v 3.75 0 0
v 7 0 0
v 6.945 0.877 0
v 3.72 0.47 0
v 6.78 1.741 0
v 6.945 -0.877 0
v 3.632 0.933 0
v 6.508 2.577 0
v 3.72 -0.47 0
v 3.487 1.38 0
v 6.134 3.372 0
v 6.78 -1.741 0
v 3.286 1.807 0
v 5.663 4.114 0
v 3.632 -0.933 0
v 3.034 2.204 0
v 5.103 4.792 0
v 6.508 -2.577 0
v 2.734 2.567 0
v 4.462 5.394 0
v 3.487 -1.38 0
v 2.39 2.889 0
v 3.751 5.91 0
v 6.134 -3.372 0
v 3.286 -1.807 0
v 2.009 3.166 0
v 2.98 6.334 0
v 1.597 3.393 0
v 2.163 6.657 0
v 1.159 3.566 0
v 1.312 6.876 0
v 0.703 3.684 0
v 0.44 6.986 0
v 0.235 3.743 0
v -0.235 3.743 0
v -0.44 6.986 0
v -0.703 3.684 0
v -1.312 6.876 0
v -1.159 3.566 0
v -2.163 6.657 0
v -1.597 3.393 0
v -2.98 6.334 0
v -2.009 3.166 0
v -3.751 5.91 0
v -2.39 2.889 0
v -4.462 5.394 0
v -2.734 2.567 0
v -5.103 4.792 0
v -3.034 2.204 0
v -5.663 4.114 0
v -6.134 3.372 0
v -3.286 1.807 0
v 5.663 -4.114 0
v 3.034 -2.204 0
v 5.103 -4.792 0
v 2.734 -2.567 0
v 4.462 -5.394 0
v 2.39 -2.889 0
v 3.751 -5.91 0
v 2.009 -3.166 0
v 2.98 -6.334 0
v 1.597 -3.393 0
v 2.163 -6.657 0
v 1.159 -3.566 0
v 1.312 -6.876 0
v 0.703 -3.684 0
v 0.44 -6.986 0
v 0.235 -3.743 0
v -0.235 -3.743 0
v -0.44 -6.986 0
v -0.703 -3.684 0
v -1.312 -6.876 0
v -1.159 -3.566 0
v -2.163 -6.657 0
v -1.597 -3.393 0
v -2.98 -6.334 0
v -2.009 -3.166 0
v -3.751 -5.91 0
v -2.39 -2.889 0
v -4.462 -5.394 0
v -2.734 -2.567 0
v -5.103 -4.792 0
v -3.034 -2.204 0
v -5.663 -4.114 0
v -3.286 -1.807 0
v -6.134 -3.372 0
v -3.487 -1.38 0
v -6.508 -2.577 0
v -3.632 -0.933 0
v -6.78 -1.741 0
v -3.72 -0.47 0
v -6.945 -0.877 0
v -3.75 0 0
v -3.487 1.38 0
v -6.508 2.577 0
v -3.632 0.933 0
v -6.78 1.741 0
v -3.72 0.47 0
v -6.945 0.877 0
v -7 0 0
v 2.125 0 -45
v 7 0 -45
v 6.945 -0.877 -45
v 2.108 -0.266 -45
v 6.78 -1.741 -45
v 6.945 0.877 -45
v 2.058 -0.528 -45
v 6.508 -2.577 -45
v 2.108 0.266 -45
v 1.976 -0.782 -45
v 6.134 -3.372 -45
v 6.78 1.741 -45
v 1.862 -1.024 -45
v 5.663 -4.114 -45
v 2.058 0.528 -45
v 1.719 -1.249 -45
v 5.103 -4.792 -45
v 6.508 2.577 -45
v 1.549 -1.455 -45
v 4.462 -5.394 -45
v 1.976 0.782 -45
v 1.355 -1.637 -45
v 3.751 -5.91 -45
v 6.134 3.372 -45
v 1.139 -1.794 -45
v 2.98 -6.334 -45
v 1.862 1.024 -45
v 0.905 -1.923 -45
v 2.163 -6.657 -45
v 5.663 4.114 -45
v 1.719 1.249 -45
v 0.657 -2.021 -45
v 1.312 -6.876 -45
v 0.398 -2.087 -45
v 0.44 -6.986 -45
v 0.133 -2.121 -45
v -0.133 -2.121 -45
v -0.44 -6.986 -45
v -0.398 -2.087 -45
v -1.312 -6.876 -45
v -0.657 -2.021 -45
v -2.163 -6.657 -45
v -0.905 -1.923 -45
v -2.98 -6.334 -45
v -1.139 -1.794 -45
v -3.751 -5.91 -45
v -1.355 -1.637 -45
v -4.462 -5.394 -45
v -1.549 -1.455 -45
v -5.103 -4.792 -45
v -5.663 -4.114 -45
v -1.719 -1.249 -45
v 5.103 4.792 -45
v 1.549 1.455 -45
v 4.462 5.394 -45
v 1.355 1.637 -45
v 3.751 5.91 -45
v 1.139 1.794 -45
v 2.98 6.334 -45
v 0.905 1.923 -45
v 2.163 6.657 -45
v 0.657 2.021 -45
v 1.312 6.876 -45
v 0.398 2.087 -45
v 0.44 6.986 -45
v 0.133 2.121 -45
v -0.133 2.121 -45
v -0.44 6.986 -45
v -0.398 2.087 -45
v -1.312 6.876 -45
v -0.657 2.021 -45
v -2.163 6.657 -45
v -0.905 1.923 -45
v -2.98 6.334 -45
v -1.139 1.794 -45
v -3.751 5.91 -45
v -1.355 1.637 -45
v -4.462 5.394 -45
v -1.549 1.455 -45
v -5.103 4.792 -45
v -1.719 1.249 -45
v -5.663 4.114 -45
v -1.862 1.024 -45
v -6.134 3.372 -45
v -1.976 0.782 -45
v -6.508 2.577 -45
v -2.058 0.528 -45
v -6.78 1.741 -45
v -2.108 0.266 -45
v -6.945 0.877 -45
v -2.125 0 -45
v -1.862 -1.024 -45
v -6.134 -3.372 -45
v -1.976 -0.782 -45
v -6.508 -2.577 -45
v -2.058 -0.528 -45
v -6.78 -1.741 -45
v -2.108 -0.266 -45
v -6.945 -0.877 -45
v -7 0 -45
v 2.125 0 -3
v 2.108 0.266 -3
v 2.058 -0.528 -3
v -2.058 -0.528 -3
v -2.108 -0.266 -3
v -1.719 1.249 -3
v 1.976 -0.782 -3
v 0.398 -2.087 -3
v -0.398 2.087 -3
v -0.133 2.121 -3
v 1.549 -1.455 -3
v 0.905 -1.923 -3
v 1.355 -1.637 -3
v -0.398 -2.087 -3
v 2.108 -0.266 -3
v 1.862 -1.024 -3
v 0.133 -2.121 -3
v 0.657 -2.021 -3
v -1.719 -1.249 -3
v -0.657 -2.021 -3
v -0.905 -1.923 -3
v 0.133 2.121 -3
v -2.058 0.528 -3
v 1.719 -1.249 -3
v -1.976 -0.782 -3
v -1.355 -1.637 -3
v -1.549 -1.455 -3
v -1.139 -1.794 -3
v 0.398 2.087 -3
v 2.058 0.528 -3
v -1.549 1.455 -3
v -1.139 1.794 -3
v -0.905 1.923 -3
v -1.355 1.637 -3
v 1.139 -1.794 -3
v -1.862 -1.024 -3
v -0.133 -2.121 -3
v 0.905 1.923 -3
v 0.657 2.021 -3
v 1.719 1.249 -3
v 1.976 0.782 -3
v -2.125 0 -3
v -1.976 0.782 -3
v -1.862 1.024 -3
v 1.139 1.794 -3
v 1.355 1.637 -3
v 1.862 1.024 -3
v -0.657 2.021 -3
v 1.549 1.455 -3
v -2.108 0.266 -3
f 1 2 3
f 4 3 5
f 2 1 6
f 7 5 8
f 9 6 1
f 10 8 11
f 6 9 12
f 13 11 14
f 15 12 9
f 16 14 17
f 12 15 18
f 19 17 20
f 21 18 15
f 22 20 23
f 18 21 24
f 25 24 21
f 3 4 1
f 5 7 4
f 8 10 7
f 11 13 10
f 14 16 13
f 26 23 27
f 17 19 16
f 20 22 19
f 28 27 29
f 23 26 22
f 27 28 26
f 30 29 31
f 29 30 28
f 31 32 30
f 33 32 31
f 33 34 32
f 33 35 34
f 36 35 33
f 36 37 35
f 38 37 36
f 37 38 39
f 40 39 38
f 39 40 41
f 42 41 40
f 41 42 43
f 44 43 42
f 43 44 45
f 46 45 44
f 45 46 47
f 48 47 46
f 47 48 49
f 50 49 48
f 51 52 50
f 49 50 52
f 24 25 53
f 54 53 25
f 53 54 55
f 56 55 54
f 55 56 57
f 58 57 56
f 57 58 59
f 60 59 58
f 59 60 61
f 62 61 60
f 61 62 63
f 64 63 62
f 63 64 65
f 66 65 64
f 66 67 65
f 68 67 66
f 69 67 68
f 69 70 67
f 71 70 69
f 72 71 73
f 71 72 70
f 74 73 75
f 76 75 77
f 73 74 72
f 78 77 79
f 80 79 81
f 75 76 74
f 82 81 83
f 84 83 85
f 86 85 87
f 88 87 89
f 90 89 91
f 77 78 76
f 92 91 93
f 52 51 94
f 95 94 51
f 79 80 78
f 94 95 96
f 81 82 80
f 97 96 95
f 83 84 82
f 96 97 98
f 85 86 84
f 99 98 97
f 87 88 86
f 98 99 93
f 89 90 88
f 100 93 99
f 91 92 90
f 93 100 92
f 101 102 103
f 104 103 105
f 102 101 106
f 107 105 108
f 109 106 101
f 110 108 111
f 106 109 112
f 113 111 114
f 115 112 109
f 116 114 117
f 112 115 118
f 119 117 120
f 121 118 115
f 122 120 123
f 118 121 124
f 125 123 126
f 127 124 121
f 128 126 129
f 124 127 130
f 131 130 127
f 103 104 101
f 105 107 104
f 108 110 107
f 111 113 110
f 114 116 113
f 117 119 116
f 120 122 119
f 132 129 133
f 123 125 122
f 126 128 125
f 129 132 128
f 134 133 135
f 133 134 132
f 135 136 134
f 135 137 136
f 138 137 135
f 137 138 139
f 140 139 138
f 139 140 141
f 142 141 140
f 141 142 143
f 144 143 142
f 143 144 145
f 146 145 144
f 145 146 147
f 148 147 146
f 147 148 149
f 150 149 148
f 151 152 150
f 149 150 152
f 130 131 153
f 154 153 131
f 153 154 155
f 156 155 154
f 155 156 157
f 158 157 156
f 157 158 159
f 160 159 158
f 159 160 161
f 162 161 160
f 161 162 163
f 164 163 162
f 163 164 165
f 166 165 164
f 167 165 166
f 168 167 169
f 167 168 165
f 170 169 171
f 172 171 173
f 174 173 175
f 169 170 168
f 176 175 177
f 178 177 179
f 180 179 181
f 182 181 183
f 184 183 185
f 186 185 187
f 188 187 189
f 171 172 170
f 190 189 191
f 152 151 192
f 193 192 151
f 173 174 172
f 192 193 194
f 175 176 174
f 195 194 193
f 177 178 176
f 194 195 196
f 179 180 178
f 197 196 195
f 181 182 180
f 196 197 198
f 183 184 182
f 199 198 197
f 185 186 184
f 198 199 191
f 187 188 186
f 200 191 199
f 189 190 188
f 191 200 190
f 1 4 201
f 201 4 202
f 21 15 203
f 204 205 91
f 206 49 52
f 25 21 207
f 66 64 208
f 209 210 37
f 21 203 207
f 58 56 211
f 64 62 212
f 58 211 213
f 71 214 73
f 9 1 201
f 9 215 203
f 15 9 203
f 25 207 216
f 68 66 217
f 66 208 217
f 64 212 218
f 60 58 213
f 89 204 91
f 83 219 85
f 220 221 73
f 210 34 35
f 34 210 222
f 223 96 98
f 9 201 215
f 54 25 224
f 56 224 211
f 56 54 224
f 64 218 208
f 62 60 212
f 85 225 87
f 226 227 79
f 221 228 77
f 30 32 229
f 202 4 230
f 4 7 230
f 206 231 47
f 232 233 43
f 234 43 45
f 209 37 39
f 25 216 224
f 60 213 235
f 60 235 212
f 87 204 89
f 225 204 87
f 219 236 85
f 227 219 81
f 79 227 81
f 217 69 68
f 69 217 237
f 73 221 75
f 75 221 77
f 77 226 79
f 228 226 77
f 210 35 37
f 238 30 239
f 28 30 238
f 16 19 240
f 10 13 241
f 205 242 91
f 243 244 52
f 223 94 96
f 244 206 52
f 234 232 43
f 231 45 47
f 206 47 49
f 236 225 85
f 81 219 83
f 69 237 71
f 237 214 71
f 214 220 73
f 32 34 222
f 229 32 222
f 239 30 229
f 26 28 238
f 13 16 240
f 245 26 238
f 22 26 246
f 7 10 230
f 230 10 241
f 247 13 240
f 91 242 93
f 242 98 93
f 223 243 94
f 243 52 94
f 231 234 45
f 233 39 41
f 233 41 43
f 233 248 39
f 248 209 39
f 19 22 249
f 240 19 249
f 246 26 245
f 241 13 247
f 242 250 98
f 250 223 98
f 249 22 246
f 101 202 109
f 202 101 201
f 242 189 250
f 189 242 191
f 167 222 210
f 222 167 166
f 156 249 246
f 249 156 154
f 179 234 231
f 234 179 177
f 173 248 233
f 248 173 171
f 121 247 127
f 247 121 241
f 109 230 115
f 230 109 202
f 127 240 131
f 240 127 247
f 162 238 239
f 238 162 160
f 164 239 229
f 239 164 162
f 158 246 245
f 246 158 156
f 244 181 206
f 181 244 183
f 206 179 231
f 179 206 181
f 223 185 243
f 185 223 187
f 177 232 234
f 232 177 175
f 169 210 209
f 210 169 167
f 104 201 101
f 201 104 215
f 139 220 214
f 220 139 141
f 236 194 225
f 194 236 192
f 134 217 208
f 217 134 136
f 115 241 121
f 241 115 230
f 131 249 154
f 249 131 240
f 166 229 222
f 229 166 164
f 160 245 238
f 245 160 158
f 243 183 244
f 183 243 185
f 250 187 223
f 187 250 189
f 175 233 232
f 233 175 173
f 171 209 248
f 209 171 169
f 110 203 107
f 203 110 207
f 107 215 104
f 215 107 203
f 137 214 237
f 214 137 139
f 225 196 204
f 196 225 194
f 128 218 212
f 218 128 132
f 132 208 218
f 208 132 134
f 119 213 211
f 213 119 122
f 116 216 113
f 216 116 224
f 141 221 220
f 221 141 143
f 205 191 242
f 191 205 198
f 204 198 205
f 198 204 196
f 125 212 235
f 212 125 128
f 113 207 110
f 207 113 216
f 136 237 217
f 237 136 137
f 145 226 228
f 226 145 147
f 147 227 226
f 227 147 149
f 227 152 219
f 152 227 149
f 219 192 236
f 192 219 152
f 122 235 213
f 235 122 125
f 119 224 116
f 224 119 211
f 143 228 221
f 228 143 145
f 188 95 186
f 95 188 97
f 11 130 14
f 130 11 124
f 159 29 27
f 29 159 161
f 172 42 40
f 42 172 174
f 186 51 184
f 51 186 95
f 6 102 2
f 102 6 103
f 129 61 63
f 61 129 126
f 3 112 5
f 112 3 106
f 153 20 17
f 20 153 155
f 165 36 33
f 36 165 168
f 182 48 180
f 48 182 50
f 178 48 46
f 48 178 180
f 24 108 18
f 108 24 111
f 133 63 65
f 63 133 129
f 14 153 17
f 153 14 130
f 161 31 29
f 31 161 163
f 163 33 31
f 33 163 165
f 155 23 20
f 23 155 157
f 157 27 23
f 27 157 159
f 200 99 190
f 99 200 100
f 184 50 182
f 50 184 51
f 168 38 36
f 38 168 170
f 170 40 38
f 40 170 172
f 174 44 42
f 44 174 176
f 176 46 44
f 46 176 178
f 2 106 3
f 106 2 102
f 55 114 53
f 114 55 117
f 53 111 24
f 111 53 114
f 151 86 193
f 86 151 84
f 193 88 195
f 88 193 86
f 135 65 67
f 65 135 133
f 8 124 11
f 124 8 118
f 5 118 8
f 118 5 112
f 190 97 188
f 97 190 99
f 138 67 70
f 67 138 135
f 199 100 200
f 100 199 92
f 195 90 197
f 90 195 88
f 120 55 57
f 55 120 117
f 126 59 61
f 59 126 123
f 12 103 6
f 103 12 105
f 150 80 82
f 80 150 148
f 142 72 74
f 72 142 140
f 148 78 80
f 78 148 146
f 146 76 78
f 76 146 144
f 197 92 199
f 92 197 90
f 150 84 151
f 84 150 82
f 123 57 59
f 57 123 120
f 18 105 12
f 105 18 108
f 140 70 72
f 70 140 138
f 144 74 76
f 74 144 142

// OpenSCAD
$fn = 50;


difference() {
	union() {
		translate(v = [0, 0, -45.0000000000]) {
			cylinder(h = 45, r = 7.0000000000);
		}
		cylinder(h = 0, r = 16.0000000000);
	}
	union() {
		translate(v = [0, 0, 0]) {
			rotate(a = [0, 0, 0]) {
				difference() {
					union() {
						#translate(v = [0, 0, -45.0000000000]) {
							cylinder(h = 45, r = 2.0000000000);
						}
						#translate(v = [0, 0, -3]) {
							cylinder(h = 3, r1 = 2.1250000000, r2 = 3.7500000000);
						}
						#translate(v = [0, 0, -45.0000000000]) {
							cylinder(h = 45, r = 2.1250000000);
						}
						#translate(v = [0, 0, -45.0000000000]) {
							cylinder(h = 45, r = 2.0000000000);
						}
					}
					union();
				}
			}
		}
	}
}
